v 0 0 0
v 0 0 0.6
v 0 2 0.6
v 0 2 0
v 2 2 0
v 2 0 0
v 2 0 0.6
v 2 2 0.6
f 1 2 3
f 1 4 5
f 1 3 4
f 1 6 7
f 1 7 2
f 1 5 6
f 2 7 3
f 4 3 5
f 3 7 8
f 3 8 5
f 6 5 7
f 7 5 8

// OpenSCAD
/* Warning, this is a very basic generator with a lot of approximation 
input data : [UDFN, 3UW, 2x2x0.6mm, 6, , A, C04-00573A]
generated by com.zoubworld.electronics.cad.model3d.Basic
Date : Sun Feb 15 10:50:49 CET 2026
*/

//body
color("black")
translate([0,0,0])
cube([2.0,2.0,0.6], center=false);
